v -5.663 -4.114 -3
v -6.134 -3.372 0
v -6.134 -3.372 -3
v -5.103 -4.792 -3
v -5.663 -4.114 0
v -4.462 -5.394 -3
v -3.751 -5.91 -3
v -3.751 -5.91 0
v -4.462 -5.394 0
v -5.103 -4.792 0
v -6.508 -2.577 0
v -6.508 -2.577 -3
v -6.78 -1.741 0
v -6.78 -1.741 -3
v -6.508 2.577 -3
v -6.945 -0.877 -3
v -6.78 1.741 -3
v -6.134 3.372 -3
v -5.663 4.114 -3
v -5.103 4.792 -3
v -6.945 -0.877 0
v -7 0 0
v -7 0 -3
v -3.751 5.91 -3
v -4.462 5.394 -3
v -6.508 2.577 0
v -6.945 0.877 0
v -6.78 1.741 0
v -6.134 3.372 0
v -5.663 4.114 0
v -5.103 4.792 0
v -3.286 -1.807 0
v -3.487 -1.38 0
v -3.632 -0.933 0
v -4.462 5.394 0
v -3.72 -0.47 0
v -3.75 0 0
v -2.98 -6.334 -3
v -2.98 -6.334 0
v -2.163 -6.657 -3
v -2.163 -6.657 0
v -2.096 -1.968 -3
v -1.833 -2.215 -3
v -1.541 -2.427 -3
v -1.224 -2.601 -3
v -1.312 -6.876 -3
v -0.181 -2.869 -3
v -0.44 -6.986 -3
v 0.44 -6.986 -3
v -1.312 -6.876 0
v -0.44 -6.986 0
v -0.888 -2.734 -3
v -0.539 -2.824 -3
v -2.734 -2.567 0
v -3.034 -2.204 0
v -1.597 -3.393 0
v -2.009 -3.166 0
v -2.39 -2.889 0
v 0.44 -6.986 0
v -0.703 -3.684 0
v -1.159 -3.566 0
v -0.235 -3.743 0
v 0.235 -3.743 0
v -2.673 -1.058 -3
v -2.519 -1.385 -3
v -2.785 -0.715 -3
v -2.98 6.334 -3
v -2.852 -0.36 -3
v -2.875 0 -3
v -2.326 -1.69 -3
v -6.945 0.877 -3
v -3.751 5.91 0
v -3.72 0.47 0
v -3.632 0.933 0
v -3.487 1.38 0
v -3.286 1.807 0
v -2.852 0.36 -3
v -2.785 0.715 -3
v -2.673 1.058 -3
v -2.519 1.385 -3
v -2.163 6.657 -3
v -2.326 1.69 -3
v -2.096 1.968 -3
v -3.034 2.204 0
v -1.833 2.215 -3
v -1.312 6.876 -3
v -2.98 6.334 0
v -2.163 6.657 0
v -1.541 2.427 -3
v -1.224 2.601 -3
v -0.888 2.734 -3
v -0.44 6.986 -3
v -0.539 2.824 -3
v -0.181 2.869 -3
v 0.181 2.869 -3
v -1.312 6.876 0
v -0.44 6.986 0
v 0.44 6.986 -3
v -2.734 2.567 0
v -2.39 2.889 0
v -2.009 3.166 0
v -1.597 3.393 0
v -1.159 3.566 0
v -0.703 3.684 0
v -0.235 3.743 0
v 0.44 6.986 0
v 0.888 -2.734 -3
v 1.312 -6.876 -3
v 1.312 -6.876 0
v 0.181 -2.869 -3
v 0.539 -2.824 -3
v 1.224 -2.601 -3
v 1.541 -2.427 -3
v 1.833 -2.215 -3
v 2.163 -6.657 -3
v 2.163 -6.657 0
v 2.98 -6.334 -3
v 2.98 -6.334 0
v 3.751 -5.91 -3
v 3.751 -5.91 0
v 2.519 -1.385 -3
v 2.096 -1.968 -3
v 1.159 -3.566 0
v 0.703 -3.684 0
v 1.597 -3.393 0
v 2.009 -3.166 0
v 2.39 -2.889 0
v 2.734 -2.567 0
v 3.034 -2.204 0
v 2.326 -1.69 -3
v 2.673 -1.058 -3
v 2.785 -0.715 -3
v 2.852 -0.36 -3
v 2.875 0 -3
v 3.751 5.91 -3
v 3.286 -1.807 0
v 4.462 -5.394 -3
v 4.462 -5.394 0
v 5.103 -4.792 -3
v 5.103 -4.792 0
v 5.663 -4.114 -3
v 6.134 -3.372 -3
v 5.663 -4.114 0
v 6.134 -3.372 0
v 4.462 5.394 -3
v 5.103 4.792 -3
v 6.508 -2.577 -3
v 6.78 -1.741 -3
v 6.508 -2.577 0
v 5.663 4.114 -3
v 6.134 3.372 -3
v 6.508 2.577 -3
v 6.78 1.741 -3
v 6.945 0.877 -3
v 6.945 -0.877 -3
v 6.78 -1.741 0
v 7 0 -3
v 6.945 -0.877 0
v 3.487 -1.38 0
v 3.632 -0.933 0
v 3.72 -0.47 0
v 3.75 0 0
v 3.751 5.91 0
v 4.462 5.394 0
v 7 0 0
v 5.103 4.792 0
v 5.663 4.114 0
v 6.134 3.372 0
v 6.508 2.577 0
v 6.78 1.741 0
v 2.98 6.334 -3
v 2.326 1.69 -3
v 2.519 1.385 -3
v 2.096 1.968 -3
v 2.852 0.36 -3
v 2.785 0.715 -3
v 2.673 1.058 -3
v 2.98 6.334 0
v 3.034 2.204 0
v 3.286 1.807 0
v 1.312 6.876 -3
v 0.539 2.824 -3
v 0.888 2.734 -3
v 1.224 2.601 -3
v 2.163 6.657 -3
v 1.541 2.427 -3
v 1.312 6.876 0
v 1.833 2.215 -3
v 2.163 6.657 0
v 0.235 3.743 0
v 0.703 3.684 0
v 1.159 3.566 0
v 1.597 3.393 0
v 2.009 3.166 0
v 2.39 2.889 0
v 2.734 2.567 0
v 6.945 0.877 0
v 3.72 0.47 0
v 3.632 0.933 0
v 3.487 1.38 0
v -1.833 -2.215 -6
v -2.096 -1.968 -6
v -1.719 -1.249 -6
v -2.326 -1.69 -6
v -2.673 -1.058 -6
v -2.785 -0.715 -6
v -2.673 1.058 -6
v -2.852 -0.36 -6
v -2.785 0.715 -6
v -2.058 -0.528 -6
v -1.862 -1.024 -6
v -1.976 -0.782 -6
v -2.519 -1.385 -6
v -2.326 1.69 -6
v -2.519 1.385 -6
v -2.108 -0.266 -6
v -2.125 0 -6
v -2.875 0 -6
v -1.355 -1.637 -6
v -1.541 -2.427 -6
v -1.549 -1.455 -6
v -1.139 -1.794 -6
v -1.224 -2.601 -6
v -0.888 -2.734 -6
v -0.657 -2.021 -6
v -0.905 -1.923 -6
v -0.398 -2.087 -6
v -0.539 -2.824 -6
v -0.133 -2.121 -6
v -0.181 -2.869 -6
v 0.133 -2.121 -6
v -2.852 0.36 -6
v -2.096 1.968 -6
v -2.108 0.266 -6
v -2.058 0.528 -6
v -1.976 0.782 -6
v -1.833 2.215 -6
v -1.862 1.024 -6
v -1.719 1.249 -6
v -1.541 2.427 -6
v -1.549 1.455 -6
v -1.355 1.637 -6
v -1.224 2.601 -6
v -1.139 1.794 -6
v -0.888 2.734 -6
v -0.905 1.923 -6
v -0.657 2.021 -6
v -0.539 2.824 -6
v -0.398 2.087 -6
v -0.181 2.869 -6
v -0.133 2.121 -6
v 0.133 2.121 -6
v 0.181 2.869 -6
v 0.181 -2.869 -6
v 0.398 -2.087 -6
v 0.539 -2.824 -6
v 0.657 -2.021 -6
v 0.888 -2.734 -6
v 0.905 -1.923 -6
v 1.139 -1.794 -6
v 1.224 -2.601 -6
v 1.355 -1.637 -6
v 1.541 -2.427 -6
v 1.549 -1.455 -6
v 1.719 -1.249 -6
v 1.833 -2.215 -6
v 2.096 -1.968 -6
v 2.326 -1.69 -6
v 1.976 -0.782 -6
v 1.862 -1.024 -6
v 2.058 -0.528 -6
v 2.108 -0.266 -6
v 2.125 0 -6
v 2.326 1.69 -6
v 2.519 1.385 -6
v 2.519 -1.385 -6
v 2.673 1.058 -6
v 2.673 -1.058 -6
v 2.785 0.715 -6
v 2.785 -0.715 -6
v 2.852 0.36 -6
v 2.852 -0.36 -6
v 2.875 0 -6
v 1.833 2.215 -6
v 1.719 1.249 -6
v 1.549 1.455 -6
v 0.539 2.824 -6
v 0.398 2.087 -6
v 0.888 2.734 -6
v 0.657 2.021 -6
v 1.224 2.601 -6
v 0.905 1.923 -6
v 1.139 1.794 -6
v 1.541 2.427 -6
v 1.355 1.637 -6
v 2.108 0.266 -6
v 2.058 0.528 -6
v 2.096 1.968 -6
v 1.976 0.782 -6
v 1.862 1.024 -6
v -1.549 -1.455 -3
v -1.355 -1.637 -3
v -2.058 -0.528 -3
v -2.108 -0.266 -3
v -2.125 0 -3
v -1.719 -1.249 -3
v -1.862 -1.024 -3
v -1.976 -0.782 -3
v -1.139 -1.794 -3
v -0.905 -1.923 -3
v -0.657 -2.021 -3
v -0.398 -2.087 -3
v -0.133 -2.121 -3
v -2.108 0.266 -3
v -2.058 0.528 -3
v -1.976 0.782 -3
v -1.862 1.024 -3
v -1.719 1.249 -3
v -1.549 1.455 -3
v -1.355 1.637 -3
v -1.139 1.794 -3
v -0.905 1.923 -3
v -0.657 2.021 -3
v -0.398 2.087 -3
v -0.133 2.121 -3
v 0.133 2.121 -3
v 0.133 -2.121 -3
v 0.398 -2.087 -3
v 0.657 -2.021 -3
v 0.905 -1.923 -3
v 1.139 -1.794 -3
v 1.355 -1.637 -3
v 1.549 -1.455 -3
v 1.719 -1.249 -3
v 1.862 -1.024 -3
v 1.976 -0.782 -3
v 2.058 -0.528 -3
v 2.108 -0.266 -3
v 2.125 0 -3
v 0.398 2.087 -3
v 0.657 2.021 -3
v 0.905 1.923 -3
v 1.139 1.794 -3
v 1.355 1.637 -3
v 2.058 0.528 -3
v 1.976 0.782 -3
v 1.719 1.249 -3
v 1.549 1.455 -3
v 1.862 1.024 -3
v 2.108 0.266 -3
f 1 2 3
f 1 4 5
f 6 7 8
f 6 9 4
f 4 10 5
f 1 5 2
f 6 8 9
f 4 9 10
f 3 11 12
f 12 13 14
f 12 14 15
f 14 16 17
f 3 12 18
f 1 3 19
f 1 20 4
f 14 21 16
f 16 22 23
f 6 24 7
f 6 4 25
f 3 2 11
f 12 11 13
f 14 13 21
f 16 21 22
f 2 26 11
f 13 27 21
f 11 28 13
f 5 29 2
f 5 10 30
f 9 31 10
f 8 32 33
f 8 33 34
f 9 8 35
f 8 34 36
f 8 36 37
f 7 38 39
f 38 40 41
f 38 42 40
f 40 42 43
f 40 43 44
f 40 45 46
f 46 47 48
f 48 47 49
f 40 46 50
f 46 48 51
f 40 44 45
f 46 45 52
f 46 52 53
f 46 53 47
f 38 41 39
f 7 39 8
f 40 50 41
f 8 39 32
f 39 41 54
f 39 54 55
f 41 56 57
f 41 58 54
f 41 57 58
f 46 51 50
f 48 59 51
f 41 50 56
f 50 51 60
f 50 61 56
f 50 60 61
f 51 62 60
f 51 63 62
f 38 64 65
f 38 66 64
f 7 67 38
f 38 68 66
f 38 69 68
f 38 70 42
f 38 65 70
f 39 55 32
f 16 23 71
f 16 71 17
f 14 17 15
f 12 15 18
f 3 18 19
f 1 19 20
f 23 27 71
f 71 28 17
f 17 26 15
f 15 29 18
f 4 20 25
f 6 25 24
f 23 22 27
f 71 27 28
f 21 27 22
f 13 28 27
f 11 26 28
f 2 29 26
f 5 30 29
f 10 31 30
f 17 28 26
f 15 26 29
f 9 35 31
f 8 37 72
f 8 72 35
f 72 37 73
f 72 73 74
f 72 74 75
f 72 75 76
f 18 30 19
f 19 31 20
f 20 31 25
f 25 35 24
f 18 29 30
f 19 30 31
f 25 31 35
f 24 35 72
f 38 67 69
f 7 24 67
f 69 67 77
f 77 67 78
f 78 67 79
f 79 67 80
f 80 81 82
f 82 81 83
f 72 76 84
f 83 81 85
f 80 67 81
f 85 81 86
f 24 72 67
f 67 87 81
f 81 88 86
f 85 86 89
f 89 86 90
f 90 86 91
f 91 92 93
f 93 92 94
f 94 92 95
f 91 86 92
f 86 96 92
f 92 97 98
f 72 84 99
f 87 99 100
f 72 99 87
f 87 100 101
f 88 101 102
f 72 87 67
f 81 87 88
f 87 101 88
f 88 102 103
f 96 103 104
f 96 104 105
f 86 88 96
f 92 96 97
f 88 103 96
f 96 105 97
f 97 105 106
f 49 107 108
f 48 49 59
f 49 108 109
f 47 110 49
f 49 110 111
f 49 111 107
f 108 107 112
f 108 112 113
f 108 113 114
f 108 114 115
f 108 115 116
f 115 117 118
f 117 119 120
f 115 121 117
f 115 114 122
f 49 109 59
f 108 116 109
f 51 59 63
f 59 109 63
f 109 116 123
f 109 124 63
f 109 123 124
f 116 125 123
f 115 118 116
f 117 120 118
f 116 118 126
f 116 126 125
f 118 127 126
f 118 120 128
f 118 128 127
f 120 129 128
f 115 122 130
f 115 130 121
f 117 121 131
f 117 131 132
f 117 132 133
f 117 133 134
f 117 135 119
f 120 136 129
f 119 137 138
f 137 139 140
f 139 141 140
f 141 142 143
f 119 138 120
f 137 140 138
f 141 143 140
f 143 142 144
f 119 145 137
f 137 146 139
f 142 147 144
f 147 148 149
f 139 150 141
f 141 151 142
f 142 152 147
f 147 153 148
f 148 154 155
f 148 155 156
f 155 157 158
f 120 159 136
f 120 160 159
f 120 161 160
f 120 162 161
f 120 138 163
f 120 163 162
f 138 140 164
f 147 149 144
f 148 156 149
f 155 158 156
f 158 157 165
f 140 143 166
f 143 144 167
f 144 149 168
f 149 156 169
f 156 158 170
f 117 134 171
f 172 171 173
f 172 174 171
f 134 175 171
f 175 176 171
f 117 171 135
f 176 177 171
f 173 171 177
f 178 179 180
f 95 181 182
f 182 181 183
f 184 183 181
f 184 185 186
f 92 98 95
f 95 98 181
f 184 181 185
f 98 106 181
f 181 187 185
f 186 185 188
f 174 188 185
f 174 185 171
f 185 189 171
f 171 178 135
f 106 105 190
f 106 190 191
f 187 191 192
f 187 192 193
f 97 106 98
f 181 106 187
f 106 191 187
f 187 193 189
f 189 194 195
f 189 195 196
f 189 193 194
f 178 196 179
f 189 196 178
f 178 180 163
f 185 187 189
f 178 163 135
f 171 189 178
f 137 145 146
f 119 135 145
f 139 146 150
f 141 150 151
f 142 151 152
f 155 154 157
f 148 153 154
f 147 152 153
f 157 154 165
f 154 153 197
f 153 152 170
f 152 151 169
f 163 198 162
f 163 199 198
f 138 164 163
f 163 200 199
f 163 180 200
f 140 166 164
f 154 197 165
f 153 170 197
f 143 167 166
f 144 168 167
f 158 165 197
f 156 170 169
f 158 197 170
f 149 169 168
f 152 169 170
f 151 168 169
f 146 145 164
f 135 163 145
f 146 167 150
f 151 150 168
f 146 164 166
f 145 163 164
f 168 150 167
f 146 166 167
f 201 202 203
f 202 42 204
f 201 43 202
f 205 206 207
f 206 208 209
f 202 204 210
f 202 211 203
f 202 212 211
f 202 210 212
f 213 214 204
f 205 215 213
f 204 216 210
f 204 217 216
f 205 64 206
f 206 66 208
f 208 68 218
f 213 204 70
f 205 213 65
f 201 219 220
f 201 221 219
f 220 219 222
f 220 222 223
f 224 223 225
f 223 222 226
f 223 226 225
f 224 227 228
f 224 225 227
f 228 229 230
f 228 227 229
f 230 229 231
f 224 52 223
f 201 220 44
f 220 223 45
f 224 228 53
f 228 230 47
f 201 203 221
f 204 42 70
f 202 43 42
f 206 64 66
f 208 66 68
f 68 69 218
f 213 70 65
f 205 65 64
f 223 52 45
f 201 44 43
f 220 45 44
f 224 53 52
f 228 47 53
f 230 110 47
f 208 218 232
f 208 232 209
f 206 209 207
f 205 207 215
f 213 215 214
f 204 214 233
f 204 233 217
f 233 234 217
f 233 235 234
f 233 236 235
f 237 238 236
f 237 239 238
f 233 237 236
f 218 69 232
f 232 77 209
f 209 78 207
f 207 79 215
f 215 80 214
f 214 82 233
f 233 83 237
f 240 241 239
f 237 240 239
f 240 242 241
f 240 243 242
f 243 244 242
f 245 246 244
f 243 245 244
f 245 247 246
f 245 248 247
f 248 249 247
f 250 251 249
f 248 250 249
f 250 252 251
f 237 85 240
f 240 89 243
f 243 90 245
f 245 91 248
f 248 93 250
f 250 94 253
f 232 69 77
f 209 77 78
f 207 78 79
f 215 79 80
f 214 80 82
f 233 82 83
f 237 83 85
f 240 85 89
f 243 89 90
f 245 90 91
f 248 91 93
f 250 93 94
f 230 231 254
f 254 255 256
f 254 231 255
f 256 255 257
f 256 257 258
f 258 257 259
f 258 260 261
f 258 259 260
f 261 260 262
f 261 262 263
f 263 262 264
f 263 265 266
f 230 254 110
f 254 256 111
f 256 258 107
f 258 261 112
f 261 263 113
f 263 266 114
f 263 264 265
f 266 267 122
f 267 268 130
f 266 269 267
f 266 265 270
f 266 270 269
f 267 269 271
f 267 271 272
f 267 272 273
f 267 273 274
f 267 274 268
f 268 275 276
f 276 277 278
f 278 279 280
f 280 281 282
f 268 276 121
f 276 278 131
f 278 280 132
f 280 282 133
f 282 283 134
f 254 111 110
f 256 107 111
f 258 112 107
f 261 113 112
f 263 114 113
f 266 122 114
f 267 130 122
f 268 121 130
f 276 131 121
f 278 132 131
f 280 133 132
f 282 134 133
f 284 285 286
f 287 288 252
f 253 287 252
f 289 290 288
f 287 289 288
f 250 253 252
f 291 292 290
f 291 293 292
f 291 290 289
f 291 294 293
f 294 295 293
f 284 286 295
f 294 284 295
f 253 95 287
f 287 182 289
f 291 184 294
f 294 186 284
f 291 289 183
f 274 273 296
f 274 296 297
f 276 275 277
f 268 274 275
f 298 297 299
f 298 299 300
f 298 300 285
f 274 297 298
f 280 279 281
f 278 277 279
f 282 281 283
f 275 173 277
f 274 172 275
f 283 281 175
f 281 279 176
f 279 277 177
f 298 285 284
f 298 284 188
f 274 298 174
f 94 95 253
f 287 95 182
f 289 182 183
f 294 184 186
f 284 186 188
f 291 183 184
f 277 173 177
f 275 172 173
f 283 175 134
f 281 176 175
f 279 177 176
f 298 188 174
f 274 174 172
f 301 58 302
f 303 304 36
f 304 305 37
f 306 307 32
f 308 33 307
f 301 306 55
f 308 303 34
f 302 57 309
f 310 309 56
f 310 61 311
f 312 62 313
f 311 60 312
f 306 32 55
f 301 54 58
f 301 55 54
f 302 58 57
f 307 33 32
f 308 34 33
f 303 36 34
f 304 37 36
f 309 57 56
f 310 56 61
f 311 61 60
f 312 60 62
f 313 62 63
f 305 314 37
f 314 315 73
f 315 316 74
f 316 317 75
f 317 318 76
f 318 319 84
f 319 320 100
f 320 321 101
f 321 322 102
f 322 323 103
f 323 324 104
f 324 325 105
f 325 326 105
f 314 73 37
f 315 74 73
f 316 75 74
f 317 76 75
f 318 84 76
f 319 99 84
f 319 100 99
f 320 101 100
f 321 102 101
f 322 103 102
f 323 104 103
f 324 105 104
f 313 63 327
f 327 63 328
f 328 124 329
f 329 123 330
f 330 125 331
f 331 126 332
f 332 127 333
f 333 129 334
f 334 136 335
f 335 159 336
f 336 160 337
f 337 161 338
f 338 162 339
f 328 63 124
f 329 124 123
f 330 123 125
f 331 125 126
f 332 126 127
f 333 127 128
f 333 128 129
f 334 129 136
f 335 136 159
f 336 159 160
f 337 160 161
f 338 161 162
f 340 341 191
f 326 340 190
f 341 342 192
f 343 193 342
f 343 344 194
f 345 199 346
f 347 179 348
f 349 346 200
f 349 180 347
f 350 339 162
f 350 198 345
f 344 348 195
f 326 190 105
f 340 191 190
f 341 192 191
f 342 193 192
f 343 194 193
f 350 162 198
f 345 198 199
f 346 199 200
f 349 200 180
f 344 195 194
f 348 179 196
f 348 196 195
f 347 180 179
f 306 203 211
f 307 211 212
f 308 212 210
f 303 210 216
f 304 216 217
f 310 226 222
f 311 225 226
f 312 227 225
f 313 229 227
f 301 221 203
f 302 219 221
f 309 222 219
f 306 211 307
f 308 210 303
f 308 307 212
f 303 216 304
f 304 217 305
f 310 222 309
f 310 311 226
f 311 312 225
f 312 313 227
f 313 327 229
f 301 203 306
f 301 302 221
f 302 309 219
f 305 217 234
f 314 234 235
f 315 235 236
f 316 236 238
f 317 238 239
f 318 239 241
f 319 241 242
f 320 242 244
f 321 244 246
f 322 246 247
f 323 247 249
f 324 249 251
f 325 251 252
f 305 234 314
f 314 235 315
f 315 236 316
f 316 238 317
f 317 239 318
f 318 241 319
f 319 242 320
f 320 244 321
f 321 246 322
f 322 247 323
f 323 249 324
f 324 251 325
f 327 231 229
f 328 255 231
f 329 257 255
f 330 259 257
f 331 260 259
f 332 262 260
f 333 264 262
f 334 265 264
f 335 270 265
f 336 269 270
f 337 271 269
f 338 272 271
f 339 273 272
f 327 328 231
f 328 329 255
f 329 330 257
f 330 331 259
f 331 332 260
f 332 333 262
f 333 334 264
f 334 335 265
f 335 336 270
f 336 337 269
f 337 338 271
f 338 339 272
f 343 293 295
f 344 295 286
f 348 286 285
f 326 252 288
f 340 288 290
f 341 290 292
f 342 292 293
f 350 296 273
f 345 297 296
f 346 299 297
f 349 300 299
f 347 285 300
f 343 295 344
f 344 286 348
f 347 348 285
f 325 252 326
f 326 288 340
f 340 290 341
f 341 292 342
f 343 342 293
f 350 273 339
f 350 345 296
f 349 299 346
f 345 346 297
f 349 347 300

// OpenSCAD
$fn = 50;

difference() {
	union() {
		translate(v = [0, 0, -3.0]) {
			cylinder(h = 3, r = 7.0);
		}
		#translate(v = [0, 0, -6.0]) {
			cylinder(h = 6, r = 2.875);
		}
	}
	union() {
		translate(v = [0, 0, 0]) {
			rotate(a = [0, 0, 0]) {
				difference() {
					union() {
						translate(v = [0, 0, -6.0]) {
							cylinder(h = 6, r = 2.0);
						}
						translate(v = [0, 0, -3]) {
							cylinder(h = 3, r1 = 2.125, r2 = 3.75);
						}
						translate(v = [0, 0, -6.0]) {
							cylinder(h = 6, r = 2.125);
						}
						translate(v = [0, 0, -6.0]) {
							cylinder(h = 6, r = 2.0);
						}
					}
					union();
				}
			}
		}
	}
}
